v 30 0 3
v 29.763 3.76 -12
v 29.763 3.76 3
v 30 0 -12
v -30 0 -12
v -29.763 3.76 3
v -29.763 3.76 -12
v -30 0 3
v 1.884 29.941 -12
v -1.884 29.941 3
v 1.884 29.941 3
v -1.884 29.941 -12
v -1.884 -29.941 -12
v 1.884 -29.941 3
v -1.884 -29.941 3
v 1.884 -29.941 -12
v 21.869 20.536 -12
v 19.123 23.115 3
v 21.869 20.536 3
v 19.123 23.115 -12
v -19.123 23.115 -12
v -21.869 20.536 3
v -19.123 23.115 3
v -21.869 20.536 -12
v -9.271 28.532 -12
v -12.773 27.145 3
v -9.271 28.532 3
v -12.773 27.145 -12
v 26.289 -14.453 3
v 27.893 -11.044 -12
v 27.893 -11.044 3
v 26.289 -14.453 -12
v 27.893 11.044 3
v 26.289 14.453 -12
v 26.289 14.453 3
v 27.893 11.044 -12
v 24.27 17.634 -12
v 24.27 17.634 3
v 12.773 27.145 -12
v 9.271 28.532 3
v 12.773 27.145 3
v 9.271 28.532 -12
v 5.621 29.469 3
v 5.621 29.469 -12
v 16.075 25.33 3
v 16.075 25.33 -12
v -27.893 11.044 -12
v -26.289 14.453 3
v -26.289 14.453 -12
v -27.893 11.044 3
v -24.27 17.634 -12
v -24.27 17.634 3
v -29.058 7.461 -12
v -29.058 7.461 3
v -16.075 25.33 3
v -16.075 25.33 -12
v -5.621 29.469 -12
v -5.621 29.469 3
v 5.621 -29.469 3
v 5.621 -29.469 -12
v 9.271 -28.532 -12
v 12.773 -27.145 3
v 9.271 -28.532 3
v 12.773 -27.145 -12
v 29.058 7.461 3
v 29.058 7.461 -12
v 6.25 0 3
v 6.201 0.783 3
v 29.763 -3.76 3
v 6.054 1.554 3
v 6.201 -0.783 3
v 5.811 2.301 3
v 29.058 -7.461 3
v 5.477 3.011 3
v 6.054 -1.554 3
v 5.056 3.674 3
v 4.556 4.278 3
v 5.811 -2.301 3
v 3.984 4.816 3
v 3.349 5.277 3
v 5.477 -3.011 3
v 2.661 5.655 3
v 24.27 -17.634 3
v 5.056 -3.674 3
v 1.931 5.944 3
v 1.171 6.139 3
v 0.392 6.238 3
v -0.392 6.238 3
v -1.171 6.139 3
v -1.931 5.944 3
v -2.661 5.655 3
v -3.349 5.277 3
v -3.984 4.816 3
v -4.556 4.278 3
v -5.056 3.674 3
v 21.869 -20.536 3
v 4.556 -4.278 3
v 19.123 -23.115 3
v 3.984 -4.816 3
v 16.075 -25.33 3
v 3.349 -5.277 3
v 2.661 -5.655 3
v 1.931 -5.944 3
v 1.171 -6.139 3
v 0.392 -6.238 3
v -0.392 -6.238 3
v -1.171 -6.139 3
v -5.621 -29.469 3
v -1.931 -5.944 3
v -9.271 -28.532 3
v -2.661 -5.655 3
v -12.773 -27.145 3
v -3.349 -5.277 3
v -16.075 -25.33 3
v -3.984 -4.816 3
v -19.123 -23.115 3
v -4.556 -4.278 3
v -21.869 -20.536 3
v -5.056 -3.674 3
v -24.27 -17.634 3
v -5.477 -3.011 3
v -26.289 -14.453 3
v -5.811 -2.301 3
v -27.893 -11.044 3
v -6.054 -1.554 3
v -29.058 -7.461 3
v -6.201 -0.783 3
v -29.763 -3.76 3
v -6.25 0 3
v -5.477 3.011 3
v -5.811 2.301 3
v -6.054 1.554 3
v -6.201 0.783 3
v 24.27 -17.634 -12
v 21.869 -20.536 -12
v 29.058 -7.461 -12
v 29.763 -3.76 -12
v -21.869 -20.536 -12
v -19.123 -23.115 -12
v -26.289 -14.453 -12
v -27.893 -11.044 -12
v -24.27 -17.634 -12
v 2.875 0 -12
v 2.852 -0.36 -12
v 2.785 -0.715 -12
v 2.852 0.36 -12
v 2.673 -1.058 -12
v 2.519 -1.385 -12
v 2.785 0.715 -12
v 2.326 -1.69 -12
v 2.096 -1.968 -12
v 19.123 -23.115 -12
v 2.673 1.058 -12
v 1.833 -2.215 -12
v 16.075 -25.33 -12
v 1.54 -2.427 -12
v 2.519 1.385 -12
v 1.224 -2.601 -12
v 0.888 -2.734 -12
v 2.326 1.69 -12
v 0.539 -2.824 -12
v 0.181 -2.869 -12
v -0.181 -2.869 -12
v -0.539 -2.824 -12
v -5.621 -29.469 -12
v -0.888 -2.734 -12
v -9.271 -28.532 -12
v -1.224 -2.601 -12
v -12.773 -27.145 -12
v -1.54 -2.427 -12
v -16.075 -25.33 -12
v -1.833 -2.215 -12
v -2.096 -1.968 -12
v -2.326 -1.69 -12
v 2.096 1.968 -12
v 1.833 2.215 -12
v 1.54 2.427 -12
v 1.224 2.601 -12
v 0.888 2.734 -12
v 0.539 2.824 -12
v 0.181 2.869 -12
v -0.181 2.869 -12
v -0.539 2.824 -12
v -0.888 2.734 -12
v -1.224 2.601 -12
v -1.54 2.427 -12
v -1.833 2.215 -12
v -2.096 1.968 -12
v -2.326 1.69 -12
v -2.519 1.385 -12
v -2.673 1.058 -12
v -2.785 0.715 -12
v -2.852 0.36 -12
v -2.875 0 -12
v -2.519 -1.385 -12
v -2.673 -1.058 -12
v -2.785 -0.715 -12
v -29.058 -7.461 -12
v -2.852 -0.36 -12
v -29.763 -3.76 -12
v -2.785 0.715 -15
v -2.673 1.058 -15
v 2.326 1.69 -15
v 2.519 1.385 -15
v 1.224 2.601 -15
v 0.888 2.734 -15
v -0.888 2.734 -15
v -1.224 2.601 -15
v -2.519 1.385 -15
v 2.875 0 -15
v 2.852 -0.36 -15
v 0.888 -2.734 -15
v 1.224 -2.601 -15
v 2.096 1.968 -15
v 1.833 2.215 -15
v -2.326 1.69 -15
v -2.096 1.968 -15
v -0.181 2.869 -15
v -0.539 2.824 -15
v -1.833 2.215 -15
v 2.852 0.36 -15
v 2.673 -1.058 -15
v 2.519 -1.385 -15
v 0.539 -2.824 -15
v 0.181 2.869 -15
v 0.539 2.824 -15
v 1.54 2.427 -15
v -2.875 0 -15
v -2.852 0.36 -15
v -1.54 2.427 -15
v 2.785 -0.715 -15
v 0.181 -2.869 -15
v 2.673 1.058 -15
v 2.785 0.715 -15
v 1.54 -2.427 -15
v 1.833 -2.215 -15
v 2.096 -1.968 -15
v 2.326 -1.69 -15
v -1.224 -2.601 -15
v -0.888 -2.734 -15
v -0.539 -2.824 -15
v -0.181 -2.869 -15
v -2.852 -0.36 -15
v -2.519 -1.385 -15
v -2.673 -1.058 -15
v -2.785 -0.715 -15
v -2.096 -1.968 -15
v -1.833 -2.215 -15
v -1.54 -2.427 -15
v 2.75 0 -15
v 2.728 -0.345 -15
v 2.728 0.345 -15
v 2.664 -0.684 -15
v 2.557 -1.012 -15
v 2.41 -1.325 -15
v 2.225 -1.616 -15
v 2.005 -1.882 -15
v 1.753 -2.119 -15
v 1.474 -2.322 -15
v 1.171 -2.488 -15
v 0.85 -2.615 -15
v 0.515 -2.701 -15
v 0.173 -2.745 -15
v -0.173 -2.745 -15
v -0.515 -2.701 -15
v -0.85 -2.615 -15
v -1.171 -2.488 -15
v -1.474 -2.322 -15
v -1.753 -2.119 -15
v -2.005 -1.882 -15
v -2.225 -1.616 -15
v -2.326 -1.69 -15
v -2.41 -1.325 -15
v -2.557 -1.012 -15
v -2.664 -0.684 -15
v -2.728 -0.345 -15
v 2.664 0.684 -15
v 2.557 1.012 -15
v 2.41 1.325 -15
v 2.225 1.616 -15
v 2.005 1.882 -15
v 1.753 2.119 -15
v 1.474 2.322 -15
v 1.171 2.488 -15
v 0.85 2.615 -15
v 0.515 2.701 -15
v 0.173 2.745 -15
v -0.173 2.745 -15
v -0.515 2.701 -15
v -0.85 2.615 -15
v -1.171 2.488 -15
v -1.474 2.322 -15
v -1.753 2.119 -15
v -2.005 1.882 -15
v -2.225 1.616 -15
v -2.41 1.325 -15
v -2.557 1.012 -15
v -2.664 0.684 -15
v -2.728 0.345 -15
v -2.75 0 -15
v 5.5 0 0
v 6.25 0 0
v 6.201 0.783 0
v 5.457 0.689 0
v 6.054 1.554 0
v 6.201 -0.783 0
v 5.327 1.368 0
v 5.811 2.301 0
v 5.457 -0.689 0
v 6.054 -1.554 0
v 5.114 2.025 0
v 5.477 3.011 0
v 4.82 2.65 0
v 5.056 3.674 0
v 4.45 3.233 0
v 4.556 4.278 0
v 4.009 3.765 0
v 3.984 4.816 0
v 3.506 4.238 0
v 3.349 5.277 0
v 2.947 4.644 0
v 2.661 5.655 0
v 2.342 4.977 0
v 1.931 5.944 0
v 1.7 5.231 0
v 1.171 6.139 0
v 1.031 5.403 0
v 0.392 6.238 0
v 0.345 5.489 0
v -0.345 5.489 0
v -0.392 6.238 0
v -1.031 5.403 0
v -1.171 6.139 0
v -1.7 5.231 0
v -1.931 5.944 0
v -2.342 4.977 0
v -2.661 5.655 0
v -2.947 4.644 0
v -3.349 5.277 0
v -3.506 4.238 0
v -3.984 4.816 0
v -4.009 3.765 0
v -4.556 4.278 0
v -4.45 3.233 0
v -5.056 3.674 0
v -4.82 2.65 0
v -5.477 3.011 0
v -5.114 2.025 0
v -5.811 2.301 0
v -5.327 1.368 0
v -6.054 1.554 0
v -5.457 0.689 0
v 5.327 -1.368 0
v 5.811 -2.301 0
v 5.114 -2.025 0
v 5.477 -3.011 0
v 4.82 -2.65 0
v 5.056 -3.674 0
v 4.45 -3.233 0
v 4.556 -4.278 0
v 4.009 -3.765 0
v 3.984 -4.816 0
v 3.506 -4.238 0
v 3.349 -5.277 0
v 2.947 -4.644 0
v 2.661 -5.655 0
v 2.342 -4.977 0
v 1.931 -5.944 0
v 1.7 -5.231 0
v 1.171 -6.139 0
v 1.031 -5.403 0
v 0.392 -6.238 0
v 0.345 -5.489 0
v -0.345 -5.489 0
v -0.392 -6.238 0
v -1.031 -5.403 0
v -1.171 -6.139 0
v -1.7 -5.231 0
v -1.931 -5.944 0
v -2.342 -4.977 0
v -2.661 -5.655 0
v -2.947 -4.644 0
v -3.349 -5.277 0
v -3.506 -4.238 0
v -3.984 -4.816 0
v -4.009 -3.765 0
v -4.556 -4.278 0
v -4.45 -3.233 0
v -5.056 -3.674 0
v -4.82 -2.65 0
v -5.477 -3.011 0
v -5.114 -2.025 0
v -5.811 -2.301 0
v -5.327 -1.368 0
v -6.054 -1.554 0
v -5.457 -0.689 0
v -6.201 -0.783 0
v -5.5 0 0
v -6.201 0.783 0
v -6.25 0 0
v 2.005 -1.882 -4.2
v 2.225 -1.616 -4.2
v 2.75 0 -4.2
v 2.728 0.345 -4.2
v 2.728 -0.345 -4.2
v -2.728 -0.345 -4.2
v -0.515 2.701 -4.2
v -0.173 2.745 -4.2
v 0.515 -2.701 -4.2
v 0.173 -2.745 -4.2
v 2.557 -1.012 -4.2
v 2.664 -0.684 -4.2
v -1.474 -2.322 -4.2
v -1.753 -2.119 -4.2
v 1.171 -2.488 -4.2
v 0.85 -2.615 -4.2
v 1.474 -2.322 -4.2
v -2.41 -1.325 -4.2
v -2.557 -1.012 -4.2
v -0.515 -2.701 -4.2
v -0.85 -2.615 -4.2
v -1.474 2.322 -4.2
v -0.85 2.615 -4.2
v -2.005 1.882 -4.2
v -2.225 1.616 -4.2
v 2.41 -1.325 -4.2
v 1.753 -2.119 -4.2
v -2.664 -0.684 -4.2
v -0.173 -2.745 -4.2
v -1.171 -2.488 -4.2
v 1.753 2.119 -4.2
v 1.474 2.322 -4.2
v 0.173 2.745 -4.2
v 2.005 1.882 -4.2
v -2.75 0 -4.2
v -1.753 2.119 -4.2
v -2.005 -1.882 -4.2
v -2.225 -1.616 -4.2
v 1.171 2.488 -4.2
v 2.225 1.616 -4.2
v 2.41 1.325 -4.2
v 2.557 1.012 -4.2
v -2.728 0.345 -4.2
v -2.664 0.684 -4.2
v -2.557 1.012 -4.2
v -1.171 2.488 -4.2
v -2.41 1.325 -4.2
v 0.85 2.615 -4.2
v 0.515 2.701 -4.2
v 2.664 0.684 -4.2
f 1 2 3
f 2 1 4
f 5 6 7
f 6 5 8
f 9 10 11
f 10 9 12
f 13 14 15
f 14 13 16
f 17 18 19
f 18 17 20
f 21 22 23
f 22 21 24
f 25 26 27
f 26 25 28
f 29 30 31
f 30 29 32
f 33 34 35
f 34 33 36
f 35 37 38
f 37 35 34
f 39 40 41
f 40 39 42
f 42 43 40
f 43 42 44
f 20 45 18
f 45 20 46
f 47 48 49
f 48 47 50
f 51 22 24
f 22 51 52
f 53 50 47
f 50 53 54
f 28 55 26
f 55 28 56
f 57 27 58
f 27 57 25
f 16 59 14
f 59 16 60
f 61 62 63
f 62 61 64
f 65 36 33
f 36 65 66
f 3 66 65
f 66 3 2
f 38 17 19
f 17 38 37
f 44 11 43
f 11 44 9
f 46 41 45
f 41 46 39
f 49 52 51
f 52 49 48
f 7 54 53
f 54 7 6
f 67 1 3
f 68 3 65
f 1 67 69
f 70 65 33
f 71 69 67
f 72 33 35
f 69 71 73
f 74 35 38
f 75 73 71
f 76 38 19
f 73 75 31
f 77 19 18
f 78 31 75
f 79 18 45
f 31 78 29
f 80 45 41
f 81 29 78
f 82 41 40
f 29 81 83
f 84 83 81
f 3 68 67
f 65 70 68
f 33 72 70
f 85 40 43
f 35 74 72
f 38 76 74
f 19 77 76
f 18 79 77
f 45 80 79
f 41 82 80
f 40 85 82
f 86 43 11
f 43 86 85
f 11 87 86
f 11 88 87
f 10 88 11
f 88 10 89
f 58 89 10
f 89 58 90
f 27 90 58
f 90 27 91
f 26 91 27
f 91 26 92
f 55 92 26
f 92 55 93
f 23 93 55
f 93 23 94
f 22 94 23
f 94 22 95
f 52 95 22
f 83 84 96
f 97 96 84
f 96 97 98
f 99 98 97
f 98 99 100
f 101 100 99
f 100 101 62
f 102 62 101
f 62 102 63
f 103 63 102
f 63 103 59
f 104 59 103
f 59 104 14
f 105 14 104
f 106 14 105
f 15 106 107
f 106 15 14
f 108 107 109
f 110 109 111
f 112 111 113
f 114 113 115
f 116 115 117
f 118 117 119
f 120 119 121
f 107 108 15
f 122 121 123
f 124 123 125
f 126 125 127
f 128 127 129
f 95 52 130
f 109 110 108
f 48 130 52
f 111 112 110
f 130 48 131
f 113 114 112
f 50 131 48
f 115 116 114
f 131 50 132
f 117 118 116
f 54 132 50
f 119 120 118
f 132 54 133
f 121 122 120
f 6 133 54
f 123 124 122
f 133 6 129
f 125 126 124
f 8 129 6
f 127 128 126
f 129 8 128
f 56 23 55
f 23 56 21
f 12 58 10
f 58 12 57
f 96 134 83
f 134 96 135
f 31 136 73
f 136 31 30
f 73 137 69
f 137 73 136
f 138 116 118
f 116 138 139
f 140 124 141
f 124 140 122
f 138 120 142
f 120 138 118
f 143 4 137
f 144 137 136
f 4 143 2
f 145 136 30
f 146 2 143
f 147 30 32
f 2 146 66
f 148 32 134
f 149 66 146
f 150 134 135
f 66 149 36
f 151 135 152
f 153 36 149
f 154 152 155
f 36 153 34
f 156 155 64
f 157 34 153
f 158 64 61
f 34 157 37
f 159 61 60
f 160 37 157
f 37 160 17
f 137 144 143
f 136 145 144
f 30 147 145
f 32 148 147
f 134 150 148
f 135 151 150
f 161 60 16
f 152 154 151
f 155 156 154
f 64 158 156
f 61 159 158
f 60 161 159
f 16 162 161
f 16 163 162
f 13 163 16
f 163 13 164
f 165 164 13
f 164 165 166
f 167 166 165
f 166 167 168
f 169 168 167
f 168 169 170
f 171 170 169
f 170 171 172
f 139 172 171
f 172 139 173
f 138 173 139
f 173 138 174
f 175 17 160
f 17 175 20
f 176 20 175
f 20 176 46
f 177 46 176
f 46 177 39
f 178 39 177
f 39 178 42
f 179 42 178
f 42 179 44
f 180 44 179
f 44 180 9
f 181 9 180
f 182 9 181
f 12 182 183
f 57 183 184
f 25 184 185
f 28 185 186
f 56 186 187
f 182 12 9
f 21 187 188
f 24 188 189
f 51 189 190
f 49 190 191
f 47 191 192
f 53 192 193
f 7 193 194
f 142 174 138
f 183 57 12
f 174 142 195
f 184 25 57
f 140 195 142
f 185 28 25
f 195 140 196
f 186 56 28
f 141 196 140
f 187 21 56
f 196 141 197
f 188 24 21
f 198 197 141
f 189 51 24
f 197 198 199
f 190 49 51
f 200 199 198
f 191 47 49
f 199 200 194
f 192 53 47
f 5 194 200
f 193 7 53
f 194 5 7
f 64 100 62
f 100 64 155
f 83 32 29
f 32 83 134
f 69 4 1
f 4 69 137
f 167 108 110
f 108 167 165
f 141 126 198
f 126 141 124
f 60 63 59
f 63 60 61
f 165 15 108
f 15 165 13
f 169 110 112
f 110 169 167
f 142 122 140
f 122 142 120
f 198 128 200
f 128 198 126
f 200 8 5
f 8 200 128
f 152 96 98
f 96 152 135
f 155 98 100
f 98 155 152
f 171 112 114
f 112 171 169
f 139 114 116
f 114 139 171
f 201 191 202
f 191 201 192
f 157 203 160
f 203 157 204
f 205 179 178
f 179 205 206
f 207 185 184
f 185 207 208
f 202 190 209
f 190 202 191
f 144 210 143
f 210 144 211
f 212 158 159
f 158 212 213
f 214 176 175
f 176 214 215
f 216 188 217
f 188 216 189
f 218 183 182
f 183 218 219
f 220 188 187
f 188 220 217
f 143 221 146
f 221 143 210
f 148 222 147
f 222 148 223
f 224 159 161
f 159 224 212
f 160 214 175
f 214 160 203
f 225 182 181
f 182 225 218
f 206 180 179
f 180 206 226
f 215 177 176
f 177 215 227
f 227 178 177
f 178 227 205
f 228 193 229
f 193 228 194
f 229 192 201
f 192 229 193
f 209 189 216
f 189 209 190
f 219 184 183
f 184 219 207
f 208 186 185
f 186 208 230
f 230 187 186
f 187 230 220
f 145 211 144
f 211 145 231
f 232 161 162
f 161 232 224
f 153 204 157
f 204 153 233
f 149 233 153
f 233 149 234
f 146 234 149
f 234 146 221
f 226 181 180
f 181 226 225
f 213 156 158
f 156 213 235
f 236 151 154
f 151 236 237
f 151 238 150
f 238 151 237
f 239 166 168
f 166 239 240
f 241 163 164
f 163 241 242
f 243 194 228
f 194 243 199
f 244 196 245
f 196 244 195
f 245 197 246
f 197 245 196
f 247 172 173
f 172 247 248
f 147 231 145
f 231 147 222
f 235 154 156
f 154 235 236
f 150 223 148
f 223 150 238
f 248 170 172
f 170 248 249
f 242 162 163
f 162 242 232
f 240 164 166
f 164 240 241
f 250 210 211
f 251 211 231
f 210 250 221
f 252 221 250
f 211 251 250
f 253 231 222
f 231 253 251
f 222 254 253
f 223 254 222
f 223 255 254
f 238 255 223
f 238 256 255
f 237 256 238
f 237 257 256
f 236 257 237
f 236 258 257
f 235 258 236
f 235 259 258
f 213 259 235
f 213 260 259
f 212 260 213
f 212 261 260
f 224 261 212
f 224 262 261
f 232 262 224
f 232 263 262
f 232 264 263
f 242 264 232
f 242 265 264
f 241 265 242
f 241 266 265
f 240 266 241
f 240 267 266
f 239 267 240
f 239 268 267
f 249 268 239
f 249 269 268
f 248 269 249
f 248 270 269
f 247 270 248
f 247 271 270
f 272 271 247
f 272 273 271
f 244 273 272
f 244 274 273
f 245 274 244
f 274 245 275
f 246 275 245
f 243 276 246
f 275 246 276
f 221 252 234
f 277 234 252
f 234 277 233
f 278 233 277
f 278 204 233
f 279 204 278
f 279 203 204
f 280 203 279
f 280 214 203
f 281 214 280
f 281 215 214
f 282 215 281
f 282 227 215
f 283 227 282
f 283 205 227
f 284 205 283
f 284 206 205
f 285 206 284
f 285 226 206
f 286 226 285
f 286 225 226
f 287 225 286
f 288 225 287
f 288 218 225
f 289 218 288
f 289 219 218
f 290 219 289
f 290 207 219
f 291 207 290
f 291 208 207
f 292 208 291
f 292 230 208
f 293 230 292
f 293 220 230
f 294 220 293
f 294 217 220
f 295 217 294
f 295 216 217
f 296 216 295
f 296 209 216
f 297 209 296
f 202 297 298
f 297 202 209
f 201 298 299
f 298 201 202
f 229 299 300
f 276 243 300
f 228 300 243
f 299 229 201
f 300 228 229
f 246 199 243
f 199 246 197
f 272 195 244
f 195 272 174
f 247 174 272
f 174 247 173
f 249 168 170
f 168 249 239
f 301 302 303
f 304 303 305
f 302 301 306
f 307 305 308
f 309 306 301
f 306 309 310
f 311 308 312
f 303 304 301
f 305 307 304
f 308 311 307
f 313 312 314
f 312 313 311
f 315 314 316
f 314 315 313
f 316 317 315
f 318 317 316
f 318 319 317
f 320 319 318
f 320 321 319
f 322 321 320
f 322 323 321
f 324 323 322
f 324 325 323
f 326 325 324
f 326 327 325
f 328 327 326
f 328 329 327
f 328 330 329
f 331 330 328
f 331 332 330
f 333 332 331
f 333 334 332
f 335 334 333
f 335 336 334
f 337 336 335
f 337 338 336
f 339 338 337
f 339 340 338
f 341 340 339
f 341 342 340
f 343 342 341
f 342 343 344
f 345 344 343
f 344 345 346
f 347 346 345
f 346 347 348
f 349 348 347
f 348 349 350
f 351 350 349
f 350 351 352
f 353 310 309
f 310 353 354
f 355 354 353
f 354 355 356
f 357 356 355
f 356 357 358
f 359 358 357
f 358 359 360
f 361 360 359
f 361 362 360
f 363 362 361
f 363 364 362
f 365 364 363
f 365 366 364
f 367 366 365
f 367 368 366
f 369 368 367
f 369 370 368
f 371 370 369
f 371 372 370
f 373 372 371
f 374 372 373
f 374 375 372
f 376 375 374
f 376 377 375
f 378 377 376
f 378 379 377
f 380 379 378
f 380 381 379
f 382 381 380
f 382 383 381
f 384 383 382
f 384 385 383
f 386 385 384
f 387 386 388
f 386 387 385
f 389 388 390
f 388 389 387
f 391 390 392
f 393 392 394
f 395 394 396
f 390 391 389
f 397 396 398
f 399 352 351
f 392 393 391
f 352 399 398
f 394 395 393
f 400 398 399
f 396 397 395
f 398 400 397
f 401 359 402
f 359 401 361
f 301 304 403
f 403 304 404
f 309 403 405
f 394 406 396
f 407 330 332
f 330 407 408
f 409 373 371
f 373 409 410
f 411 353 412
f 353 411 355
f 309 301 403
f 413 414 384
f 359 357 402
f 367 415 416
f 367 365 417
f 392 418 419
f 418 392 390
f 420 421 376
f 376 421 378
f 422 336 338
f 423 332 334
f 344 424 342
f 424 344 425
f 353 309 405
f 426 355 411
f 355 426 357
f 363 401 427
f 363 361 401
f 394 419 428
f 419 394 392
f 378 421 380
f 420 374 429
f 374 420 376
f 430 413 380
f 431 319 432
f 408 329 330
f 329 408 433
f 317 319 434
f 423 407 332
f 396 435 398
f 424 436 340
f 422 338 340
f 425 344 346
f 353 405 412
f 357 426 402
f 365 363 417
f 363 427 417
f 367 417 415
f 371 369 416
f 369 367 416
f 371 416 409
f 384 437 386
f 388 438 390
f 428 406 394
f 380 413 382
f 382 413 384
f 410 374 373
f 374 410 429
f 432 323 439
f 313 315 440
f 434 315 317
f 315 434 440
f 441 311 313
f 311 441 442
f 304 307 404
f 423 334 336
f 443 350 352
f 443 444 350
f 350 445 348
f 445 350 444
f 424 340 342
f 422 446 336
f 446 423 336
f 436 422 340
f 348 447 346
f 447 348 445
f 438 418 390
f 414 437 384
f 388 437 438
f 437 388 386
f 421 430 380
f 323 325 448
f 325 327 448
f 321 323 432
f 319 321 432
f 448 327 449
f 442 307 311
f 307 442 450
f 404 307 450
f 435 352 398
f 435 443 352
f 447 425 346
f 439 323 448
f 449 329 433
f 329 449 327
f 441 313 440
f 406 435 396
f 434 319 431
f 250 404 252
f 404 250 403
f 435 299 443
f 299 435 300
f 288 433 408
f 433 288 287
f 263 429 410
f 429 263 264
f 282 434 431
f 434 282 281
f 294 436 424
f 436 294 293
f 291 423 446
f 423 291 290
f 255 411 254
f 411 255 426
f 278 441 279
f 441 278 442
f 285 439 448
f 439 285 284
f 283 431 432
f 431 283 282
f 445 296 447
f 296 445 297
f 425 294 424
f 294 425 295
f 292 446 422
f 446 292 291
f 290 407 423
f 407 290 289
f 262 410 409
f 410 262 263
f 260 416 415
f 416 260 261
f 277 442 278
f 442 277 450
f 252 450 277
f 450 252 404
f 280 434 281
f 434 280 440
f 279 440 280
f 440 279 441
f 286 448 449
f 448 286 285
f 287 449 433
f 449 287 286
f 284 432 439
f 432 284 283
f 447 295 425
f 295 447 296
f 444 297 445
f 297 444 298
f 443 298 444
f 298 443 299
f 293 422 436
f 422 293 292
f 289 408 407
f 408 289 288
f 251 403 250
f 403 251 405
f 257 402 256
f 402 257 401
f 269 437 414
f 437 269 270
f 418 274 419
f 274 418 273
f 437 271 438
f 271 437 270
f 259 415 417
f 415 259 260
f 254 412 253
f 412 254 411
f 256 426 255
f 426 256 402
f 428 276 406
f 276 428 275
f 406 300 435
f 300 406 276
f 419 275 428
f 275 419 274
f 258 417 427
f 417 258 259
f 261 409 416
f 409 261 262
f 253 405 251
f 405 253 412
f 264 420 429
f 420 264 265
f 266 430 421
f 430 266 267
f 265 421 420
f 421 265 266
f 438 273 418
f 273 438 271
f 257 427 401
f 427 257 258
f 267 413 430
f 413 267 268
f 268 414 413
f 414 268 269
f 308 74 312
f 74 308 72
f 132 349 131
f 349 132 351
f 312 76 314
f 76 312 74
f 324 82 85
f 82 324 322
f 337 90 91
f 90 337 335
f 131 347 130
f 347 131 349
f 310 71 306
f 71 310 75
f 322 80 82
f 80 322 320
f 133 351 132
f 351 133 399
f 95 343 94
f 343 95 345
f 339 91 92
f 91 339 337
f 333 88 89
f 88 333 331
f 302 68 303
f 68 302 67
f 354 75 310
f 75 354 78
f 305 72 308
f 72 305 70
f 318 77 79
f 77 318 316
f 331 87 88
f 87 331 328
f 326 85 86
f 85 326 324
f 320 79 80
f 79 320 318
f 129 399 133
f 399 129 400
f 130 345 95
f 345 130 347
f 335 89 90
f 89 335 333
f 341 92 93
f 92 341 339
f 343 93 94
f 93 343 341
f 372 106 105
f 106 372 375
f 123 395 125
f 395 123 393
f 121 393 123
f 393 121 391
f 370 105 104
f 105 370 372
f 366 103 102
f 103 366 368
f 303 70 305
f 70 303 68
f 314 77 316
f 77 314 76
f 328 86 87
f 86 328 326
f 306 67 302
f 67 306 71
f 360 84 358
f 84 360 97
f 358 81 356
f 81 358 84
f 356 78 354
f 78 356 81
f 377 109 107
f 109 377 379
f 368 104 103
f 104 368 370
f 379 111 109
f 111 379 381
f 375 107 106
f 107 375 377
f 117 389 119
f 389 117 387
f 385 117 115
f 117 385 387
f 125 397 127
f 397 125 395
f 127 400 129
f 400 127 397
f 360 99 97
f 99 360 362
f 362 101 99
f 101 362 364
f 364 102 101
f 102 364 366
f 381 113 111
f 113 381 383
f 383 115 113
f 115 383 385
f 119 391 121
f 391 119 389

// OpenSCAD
$fn = 50;

difference() {
	union() {
		translate(v = [0, 0, -12.0]) {
			cylinder(h = 15, r = 30.0);
		}
		#translate(v = [0, 0, -15.0]) {
			cylinder(h = 15, r = 2.875);
		}
	}
	union() {
		translate(v = [0, 0, 0]) {
			rotate(a = [0, 0, 0]) {
				difference() {
					union() {
						translate(v = [0, 0, -15.0]) {
							cylinder(h = 15, r = 2.25);
						}
						translate(v = [0, 0, -4.2]) {
							cylinder(h = 4.2, r1 = 2.75, r2 = 5.5);
						}
						translate(v = [0, 0, -15.0]) {
							cylinder(h = 15, r = 2.75);
						}
						translate(v = [0, 0, -15.0]) {
							cylinder(h = 15, r = 2.25);
						}
					}
					union();
				}
			}
		}
		#cylinder(h = 3, r = 6.25);
	}
}
